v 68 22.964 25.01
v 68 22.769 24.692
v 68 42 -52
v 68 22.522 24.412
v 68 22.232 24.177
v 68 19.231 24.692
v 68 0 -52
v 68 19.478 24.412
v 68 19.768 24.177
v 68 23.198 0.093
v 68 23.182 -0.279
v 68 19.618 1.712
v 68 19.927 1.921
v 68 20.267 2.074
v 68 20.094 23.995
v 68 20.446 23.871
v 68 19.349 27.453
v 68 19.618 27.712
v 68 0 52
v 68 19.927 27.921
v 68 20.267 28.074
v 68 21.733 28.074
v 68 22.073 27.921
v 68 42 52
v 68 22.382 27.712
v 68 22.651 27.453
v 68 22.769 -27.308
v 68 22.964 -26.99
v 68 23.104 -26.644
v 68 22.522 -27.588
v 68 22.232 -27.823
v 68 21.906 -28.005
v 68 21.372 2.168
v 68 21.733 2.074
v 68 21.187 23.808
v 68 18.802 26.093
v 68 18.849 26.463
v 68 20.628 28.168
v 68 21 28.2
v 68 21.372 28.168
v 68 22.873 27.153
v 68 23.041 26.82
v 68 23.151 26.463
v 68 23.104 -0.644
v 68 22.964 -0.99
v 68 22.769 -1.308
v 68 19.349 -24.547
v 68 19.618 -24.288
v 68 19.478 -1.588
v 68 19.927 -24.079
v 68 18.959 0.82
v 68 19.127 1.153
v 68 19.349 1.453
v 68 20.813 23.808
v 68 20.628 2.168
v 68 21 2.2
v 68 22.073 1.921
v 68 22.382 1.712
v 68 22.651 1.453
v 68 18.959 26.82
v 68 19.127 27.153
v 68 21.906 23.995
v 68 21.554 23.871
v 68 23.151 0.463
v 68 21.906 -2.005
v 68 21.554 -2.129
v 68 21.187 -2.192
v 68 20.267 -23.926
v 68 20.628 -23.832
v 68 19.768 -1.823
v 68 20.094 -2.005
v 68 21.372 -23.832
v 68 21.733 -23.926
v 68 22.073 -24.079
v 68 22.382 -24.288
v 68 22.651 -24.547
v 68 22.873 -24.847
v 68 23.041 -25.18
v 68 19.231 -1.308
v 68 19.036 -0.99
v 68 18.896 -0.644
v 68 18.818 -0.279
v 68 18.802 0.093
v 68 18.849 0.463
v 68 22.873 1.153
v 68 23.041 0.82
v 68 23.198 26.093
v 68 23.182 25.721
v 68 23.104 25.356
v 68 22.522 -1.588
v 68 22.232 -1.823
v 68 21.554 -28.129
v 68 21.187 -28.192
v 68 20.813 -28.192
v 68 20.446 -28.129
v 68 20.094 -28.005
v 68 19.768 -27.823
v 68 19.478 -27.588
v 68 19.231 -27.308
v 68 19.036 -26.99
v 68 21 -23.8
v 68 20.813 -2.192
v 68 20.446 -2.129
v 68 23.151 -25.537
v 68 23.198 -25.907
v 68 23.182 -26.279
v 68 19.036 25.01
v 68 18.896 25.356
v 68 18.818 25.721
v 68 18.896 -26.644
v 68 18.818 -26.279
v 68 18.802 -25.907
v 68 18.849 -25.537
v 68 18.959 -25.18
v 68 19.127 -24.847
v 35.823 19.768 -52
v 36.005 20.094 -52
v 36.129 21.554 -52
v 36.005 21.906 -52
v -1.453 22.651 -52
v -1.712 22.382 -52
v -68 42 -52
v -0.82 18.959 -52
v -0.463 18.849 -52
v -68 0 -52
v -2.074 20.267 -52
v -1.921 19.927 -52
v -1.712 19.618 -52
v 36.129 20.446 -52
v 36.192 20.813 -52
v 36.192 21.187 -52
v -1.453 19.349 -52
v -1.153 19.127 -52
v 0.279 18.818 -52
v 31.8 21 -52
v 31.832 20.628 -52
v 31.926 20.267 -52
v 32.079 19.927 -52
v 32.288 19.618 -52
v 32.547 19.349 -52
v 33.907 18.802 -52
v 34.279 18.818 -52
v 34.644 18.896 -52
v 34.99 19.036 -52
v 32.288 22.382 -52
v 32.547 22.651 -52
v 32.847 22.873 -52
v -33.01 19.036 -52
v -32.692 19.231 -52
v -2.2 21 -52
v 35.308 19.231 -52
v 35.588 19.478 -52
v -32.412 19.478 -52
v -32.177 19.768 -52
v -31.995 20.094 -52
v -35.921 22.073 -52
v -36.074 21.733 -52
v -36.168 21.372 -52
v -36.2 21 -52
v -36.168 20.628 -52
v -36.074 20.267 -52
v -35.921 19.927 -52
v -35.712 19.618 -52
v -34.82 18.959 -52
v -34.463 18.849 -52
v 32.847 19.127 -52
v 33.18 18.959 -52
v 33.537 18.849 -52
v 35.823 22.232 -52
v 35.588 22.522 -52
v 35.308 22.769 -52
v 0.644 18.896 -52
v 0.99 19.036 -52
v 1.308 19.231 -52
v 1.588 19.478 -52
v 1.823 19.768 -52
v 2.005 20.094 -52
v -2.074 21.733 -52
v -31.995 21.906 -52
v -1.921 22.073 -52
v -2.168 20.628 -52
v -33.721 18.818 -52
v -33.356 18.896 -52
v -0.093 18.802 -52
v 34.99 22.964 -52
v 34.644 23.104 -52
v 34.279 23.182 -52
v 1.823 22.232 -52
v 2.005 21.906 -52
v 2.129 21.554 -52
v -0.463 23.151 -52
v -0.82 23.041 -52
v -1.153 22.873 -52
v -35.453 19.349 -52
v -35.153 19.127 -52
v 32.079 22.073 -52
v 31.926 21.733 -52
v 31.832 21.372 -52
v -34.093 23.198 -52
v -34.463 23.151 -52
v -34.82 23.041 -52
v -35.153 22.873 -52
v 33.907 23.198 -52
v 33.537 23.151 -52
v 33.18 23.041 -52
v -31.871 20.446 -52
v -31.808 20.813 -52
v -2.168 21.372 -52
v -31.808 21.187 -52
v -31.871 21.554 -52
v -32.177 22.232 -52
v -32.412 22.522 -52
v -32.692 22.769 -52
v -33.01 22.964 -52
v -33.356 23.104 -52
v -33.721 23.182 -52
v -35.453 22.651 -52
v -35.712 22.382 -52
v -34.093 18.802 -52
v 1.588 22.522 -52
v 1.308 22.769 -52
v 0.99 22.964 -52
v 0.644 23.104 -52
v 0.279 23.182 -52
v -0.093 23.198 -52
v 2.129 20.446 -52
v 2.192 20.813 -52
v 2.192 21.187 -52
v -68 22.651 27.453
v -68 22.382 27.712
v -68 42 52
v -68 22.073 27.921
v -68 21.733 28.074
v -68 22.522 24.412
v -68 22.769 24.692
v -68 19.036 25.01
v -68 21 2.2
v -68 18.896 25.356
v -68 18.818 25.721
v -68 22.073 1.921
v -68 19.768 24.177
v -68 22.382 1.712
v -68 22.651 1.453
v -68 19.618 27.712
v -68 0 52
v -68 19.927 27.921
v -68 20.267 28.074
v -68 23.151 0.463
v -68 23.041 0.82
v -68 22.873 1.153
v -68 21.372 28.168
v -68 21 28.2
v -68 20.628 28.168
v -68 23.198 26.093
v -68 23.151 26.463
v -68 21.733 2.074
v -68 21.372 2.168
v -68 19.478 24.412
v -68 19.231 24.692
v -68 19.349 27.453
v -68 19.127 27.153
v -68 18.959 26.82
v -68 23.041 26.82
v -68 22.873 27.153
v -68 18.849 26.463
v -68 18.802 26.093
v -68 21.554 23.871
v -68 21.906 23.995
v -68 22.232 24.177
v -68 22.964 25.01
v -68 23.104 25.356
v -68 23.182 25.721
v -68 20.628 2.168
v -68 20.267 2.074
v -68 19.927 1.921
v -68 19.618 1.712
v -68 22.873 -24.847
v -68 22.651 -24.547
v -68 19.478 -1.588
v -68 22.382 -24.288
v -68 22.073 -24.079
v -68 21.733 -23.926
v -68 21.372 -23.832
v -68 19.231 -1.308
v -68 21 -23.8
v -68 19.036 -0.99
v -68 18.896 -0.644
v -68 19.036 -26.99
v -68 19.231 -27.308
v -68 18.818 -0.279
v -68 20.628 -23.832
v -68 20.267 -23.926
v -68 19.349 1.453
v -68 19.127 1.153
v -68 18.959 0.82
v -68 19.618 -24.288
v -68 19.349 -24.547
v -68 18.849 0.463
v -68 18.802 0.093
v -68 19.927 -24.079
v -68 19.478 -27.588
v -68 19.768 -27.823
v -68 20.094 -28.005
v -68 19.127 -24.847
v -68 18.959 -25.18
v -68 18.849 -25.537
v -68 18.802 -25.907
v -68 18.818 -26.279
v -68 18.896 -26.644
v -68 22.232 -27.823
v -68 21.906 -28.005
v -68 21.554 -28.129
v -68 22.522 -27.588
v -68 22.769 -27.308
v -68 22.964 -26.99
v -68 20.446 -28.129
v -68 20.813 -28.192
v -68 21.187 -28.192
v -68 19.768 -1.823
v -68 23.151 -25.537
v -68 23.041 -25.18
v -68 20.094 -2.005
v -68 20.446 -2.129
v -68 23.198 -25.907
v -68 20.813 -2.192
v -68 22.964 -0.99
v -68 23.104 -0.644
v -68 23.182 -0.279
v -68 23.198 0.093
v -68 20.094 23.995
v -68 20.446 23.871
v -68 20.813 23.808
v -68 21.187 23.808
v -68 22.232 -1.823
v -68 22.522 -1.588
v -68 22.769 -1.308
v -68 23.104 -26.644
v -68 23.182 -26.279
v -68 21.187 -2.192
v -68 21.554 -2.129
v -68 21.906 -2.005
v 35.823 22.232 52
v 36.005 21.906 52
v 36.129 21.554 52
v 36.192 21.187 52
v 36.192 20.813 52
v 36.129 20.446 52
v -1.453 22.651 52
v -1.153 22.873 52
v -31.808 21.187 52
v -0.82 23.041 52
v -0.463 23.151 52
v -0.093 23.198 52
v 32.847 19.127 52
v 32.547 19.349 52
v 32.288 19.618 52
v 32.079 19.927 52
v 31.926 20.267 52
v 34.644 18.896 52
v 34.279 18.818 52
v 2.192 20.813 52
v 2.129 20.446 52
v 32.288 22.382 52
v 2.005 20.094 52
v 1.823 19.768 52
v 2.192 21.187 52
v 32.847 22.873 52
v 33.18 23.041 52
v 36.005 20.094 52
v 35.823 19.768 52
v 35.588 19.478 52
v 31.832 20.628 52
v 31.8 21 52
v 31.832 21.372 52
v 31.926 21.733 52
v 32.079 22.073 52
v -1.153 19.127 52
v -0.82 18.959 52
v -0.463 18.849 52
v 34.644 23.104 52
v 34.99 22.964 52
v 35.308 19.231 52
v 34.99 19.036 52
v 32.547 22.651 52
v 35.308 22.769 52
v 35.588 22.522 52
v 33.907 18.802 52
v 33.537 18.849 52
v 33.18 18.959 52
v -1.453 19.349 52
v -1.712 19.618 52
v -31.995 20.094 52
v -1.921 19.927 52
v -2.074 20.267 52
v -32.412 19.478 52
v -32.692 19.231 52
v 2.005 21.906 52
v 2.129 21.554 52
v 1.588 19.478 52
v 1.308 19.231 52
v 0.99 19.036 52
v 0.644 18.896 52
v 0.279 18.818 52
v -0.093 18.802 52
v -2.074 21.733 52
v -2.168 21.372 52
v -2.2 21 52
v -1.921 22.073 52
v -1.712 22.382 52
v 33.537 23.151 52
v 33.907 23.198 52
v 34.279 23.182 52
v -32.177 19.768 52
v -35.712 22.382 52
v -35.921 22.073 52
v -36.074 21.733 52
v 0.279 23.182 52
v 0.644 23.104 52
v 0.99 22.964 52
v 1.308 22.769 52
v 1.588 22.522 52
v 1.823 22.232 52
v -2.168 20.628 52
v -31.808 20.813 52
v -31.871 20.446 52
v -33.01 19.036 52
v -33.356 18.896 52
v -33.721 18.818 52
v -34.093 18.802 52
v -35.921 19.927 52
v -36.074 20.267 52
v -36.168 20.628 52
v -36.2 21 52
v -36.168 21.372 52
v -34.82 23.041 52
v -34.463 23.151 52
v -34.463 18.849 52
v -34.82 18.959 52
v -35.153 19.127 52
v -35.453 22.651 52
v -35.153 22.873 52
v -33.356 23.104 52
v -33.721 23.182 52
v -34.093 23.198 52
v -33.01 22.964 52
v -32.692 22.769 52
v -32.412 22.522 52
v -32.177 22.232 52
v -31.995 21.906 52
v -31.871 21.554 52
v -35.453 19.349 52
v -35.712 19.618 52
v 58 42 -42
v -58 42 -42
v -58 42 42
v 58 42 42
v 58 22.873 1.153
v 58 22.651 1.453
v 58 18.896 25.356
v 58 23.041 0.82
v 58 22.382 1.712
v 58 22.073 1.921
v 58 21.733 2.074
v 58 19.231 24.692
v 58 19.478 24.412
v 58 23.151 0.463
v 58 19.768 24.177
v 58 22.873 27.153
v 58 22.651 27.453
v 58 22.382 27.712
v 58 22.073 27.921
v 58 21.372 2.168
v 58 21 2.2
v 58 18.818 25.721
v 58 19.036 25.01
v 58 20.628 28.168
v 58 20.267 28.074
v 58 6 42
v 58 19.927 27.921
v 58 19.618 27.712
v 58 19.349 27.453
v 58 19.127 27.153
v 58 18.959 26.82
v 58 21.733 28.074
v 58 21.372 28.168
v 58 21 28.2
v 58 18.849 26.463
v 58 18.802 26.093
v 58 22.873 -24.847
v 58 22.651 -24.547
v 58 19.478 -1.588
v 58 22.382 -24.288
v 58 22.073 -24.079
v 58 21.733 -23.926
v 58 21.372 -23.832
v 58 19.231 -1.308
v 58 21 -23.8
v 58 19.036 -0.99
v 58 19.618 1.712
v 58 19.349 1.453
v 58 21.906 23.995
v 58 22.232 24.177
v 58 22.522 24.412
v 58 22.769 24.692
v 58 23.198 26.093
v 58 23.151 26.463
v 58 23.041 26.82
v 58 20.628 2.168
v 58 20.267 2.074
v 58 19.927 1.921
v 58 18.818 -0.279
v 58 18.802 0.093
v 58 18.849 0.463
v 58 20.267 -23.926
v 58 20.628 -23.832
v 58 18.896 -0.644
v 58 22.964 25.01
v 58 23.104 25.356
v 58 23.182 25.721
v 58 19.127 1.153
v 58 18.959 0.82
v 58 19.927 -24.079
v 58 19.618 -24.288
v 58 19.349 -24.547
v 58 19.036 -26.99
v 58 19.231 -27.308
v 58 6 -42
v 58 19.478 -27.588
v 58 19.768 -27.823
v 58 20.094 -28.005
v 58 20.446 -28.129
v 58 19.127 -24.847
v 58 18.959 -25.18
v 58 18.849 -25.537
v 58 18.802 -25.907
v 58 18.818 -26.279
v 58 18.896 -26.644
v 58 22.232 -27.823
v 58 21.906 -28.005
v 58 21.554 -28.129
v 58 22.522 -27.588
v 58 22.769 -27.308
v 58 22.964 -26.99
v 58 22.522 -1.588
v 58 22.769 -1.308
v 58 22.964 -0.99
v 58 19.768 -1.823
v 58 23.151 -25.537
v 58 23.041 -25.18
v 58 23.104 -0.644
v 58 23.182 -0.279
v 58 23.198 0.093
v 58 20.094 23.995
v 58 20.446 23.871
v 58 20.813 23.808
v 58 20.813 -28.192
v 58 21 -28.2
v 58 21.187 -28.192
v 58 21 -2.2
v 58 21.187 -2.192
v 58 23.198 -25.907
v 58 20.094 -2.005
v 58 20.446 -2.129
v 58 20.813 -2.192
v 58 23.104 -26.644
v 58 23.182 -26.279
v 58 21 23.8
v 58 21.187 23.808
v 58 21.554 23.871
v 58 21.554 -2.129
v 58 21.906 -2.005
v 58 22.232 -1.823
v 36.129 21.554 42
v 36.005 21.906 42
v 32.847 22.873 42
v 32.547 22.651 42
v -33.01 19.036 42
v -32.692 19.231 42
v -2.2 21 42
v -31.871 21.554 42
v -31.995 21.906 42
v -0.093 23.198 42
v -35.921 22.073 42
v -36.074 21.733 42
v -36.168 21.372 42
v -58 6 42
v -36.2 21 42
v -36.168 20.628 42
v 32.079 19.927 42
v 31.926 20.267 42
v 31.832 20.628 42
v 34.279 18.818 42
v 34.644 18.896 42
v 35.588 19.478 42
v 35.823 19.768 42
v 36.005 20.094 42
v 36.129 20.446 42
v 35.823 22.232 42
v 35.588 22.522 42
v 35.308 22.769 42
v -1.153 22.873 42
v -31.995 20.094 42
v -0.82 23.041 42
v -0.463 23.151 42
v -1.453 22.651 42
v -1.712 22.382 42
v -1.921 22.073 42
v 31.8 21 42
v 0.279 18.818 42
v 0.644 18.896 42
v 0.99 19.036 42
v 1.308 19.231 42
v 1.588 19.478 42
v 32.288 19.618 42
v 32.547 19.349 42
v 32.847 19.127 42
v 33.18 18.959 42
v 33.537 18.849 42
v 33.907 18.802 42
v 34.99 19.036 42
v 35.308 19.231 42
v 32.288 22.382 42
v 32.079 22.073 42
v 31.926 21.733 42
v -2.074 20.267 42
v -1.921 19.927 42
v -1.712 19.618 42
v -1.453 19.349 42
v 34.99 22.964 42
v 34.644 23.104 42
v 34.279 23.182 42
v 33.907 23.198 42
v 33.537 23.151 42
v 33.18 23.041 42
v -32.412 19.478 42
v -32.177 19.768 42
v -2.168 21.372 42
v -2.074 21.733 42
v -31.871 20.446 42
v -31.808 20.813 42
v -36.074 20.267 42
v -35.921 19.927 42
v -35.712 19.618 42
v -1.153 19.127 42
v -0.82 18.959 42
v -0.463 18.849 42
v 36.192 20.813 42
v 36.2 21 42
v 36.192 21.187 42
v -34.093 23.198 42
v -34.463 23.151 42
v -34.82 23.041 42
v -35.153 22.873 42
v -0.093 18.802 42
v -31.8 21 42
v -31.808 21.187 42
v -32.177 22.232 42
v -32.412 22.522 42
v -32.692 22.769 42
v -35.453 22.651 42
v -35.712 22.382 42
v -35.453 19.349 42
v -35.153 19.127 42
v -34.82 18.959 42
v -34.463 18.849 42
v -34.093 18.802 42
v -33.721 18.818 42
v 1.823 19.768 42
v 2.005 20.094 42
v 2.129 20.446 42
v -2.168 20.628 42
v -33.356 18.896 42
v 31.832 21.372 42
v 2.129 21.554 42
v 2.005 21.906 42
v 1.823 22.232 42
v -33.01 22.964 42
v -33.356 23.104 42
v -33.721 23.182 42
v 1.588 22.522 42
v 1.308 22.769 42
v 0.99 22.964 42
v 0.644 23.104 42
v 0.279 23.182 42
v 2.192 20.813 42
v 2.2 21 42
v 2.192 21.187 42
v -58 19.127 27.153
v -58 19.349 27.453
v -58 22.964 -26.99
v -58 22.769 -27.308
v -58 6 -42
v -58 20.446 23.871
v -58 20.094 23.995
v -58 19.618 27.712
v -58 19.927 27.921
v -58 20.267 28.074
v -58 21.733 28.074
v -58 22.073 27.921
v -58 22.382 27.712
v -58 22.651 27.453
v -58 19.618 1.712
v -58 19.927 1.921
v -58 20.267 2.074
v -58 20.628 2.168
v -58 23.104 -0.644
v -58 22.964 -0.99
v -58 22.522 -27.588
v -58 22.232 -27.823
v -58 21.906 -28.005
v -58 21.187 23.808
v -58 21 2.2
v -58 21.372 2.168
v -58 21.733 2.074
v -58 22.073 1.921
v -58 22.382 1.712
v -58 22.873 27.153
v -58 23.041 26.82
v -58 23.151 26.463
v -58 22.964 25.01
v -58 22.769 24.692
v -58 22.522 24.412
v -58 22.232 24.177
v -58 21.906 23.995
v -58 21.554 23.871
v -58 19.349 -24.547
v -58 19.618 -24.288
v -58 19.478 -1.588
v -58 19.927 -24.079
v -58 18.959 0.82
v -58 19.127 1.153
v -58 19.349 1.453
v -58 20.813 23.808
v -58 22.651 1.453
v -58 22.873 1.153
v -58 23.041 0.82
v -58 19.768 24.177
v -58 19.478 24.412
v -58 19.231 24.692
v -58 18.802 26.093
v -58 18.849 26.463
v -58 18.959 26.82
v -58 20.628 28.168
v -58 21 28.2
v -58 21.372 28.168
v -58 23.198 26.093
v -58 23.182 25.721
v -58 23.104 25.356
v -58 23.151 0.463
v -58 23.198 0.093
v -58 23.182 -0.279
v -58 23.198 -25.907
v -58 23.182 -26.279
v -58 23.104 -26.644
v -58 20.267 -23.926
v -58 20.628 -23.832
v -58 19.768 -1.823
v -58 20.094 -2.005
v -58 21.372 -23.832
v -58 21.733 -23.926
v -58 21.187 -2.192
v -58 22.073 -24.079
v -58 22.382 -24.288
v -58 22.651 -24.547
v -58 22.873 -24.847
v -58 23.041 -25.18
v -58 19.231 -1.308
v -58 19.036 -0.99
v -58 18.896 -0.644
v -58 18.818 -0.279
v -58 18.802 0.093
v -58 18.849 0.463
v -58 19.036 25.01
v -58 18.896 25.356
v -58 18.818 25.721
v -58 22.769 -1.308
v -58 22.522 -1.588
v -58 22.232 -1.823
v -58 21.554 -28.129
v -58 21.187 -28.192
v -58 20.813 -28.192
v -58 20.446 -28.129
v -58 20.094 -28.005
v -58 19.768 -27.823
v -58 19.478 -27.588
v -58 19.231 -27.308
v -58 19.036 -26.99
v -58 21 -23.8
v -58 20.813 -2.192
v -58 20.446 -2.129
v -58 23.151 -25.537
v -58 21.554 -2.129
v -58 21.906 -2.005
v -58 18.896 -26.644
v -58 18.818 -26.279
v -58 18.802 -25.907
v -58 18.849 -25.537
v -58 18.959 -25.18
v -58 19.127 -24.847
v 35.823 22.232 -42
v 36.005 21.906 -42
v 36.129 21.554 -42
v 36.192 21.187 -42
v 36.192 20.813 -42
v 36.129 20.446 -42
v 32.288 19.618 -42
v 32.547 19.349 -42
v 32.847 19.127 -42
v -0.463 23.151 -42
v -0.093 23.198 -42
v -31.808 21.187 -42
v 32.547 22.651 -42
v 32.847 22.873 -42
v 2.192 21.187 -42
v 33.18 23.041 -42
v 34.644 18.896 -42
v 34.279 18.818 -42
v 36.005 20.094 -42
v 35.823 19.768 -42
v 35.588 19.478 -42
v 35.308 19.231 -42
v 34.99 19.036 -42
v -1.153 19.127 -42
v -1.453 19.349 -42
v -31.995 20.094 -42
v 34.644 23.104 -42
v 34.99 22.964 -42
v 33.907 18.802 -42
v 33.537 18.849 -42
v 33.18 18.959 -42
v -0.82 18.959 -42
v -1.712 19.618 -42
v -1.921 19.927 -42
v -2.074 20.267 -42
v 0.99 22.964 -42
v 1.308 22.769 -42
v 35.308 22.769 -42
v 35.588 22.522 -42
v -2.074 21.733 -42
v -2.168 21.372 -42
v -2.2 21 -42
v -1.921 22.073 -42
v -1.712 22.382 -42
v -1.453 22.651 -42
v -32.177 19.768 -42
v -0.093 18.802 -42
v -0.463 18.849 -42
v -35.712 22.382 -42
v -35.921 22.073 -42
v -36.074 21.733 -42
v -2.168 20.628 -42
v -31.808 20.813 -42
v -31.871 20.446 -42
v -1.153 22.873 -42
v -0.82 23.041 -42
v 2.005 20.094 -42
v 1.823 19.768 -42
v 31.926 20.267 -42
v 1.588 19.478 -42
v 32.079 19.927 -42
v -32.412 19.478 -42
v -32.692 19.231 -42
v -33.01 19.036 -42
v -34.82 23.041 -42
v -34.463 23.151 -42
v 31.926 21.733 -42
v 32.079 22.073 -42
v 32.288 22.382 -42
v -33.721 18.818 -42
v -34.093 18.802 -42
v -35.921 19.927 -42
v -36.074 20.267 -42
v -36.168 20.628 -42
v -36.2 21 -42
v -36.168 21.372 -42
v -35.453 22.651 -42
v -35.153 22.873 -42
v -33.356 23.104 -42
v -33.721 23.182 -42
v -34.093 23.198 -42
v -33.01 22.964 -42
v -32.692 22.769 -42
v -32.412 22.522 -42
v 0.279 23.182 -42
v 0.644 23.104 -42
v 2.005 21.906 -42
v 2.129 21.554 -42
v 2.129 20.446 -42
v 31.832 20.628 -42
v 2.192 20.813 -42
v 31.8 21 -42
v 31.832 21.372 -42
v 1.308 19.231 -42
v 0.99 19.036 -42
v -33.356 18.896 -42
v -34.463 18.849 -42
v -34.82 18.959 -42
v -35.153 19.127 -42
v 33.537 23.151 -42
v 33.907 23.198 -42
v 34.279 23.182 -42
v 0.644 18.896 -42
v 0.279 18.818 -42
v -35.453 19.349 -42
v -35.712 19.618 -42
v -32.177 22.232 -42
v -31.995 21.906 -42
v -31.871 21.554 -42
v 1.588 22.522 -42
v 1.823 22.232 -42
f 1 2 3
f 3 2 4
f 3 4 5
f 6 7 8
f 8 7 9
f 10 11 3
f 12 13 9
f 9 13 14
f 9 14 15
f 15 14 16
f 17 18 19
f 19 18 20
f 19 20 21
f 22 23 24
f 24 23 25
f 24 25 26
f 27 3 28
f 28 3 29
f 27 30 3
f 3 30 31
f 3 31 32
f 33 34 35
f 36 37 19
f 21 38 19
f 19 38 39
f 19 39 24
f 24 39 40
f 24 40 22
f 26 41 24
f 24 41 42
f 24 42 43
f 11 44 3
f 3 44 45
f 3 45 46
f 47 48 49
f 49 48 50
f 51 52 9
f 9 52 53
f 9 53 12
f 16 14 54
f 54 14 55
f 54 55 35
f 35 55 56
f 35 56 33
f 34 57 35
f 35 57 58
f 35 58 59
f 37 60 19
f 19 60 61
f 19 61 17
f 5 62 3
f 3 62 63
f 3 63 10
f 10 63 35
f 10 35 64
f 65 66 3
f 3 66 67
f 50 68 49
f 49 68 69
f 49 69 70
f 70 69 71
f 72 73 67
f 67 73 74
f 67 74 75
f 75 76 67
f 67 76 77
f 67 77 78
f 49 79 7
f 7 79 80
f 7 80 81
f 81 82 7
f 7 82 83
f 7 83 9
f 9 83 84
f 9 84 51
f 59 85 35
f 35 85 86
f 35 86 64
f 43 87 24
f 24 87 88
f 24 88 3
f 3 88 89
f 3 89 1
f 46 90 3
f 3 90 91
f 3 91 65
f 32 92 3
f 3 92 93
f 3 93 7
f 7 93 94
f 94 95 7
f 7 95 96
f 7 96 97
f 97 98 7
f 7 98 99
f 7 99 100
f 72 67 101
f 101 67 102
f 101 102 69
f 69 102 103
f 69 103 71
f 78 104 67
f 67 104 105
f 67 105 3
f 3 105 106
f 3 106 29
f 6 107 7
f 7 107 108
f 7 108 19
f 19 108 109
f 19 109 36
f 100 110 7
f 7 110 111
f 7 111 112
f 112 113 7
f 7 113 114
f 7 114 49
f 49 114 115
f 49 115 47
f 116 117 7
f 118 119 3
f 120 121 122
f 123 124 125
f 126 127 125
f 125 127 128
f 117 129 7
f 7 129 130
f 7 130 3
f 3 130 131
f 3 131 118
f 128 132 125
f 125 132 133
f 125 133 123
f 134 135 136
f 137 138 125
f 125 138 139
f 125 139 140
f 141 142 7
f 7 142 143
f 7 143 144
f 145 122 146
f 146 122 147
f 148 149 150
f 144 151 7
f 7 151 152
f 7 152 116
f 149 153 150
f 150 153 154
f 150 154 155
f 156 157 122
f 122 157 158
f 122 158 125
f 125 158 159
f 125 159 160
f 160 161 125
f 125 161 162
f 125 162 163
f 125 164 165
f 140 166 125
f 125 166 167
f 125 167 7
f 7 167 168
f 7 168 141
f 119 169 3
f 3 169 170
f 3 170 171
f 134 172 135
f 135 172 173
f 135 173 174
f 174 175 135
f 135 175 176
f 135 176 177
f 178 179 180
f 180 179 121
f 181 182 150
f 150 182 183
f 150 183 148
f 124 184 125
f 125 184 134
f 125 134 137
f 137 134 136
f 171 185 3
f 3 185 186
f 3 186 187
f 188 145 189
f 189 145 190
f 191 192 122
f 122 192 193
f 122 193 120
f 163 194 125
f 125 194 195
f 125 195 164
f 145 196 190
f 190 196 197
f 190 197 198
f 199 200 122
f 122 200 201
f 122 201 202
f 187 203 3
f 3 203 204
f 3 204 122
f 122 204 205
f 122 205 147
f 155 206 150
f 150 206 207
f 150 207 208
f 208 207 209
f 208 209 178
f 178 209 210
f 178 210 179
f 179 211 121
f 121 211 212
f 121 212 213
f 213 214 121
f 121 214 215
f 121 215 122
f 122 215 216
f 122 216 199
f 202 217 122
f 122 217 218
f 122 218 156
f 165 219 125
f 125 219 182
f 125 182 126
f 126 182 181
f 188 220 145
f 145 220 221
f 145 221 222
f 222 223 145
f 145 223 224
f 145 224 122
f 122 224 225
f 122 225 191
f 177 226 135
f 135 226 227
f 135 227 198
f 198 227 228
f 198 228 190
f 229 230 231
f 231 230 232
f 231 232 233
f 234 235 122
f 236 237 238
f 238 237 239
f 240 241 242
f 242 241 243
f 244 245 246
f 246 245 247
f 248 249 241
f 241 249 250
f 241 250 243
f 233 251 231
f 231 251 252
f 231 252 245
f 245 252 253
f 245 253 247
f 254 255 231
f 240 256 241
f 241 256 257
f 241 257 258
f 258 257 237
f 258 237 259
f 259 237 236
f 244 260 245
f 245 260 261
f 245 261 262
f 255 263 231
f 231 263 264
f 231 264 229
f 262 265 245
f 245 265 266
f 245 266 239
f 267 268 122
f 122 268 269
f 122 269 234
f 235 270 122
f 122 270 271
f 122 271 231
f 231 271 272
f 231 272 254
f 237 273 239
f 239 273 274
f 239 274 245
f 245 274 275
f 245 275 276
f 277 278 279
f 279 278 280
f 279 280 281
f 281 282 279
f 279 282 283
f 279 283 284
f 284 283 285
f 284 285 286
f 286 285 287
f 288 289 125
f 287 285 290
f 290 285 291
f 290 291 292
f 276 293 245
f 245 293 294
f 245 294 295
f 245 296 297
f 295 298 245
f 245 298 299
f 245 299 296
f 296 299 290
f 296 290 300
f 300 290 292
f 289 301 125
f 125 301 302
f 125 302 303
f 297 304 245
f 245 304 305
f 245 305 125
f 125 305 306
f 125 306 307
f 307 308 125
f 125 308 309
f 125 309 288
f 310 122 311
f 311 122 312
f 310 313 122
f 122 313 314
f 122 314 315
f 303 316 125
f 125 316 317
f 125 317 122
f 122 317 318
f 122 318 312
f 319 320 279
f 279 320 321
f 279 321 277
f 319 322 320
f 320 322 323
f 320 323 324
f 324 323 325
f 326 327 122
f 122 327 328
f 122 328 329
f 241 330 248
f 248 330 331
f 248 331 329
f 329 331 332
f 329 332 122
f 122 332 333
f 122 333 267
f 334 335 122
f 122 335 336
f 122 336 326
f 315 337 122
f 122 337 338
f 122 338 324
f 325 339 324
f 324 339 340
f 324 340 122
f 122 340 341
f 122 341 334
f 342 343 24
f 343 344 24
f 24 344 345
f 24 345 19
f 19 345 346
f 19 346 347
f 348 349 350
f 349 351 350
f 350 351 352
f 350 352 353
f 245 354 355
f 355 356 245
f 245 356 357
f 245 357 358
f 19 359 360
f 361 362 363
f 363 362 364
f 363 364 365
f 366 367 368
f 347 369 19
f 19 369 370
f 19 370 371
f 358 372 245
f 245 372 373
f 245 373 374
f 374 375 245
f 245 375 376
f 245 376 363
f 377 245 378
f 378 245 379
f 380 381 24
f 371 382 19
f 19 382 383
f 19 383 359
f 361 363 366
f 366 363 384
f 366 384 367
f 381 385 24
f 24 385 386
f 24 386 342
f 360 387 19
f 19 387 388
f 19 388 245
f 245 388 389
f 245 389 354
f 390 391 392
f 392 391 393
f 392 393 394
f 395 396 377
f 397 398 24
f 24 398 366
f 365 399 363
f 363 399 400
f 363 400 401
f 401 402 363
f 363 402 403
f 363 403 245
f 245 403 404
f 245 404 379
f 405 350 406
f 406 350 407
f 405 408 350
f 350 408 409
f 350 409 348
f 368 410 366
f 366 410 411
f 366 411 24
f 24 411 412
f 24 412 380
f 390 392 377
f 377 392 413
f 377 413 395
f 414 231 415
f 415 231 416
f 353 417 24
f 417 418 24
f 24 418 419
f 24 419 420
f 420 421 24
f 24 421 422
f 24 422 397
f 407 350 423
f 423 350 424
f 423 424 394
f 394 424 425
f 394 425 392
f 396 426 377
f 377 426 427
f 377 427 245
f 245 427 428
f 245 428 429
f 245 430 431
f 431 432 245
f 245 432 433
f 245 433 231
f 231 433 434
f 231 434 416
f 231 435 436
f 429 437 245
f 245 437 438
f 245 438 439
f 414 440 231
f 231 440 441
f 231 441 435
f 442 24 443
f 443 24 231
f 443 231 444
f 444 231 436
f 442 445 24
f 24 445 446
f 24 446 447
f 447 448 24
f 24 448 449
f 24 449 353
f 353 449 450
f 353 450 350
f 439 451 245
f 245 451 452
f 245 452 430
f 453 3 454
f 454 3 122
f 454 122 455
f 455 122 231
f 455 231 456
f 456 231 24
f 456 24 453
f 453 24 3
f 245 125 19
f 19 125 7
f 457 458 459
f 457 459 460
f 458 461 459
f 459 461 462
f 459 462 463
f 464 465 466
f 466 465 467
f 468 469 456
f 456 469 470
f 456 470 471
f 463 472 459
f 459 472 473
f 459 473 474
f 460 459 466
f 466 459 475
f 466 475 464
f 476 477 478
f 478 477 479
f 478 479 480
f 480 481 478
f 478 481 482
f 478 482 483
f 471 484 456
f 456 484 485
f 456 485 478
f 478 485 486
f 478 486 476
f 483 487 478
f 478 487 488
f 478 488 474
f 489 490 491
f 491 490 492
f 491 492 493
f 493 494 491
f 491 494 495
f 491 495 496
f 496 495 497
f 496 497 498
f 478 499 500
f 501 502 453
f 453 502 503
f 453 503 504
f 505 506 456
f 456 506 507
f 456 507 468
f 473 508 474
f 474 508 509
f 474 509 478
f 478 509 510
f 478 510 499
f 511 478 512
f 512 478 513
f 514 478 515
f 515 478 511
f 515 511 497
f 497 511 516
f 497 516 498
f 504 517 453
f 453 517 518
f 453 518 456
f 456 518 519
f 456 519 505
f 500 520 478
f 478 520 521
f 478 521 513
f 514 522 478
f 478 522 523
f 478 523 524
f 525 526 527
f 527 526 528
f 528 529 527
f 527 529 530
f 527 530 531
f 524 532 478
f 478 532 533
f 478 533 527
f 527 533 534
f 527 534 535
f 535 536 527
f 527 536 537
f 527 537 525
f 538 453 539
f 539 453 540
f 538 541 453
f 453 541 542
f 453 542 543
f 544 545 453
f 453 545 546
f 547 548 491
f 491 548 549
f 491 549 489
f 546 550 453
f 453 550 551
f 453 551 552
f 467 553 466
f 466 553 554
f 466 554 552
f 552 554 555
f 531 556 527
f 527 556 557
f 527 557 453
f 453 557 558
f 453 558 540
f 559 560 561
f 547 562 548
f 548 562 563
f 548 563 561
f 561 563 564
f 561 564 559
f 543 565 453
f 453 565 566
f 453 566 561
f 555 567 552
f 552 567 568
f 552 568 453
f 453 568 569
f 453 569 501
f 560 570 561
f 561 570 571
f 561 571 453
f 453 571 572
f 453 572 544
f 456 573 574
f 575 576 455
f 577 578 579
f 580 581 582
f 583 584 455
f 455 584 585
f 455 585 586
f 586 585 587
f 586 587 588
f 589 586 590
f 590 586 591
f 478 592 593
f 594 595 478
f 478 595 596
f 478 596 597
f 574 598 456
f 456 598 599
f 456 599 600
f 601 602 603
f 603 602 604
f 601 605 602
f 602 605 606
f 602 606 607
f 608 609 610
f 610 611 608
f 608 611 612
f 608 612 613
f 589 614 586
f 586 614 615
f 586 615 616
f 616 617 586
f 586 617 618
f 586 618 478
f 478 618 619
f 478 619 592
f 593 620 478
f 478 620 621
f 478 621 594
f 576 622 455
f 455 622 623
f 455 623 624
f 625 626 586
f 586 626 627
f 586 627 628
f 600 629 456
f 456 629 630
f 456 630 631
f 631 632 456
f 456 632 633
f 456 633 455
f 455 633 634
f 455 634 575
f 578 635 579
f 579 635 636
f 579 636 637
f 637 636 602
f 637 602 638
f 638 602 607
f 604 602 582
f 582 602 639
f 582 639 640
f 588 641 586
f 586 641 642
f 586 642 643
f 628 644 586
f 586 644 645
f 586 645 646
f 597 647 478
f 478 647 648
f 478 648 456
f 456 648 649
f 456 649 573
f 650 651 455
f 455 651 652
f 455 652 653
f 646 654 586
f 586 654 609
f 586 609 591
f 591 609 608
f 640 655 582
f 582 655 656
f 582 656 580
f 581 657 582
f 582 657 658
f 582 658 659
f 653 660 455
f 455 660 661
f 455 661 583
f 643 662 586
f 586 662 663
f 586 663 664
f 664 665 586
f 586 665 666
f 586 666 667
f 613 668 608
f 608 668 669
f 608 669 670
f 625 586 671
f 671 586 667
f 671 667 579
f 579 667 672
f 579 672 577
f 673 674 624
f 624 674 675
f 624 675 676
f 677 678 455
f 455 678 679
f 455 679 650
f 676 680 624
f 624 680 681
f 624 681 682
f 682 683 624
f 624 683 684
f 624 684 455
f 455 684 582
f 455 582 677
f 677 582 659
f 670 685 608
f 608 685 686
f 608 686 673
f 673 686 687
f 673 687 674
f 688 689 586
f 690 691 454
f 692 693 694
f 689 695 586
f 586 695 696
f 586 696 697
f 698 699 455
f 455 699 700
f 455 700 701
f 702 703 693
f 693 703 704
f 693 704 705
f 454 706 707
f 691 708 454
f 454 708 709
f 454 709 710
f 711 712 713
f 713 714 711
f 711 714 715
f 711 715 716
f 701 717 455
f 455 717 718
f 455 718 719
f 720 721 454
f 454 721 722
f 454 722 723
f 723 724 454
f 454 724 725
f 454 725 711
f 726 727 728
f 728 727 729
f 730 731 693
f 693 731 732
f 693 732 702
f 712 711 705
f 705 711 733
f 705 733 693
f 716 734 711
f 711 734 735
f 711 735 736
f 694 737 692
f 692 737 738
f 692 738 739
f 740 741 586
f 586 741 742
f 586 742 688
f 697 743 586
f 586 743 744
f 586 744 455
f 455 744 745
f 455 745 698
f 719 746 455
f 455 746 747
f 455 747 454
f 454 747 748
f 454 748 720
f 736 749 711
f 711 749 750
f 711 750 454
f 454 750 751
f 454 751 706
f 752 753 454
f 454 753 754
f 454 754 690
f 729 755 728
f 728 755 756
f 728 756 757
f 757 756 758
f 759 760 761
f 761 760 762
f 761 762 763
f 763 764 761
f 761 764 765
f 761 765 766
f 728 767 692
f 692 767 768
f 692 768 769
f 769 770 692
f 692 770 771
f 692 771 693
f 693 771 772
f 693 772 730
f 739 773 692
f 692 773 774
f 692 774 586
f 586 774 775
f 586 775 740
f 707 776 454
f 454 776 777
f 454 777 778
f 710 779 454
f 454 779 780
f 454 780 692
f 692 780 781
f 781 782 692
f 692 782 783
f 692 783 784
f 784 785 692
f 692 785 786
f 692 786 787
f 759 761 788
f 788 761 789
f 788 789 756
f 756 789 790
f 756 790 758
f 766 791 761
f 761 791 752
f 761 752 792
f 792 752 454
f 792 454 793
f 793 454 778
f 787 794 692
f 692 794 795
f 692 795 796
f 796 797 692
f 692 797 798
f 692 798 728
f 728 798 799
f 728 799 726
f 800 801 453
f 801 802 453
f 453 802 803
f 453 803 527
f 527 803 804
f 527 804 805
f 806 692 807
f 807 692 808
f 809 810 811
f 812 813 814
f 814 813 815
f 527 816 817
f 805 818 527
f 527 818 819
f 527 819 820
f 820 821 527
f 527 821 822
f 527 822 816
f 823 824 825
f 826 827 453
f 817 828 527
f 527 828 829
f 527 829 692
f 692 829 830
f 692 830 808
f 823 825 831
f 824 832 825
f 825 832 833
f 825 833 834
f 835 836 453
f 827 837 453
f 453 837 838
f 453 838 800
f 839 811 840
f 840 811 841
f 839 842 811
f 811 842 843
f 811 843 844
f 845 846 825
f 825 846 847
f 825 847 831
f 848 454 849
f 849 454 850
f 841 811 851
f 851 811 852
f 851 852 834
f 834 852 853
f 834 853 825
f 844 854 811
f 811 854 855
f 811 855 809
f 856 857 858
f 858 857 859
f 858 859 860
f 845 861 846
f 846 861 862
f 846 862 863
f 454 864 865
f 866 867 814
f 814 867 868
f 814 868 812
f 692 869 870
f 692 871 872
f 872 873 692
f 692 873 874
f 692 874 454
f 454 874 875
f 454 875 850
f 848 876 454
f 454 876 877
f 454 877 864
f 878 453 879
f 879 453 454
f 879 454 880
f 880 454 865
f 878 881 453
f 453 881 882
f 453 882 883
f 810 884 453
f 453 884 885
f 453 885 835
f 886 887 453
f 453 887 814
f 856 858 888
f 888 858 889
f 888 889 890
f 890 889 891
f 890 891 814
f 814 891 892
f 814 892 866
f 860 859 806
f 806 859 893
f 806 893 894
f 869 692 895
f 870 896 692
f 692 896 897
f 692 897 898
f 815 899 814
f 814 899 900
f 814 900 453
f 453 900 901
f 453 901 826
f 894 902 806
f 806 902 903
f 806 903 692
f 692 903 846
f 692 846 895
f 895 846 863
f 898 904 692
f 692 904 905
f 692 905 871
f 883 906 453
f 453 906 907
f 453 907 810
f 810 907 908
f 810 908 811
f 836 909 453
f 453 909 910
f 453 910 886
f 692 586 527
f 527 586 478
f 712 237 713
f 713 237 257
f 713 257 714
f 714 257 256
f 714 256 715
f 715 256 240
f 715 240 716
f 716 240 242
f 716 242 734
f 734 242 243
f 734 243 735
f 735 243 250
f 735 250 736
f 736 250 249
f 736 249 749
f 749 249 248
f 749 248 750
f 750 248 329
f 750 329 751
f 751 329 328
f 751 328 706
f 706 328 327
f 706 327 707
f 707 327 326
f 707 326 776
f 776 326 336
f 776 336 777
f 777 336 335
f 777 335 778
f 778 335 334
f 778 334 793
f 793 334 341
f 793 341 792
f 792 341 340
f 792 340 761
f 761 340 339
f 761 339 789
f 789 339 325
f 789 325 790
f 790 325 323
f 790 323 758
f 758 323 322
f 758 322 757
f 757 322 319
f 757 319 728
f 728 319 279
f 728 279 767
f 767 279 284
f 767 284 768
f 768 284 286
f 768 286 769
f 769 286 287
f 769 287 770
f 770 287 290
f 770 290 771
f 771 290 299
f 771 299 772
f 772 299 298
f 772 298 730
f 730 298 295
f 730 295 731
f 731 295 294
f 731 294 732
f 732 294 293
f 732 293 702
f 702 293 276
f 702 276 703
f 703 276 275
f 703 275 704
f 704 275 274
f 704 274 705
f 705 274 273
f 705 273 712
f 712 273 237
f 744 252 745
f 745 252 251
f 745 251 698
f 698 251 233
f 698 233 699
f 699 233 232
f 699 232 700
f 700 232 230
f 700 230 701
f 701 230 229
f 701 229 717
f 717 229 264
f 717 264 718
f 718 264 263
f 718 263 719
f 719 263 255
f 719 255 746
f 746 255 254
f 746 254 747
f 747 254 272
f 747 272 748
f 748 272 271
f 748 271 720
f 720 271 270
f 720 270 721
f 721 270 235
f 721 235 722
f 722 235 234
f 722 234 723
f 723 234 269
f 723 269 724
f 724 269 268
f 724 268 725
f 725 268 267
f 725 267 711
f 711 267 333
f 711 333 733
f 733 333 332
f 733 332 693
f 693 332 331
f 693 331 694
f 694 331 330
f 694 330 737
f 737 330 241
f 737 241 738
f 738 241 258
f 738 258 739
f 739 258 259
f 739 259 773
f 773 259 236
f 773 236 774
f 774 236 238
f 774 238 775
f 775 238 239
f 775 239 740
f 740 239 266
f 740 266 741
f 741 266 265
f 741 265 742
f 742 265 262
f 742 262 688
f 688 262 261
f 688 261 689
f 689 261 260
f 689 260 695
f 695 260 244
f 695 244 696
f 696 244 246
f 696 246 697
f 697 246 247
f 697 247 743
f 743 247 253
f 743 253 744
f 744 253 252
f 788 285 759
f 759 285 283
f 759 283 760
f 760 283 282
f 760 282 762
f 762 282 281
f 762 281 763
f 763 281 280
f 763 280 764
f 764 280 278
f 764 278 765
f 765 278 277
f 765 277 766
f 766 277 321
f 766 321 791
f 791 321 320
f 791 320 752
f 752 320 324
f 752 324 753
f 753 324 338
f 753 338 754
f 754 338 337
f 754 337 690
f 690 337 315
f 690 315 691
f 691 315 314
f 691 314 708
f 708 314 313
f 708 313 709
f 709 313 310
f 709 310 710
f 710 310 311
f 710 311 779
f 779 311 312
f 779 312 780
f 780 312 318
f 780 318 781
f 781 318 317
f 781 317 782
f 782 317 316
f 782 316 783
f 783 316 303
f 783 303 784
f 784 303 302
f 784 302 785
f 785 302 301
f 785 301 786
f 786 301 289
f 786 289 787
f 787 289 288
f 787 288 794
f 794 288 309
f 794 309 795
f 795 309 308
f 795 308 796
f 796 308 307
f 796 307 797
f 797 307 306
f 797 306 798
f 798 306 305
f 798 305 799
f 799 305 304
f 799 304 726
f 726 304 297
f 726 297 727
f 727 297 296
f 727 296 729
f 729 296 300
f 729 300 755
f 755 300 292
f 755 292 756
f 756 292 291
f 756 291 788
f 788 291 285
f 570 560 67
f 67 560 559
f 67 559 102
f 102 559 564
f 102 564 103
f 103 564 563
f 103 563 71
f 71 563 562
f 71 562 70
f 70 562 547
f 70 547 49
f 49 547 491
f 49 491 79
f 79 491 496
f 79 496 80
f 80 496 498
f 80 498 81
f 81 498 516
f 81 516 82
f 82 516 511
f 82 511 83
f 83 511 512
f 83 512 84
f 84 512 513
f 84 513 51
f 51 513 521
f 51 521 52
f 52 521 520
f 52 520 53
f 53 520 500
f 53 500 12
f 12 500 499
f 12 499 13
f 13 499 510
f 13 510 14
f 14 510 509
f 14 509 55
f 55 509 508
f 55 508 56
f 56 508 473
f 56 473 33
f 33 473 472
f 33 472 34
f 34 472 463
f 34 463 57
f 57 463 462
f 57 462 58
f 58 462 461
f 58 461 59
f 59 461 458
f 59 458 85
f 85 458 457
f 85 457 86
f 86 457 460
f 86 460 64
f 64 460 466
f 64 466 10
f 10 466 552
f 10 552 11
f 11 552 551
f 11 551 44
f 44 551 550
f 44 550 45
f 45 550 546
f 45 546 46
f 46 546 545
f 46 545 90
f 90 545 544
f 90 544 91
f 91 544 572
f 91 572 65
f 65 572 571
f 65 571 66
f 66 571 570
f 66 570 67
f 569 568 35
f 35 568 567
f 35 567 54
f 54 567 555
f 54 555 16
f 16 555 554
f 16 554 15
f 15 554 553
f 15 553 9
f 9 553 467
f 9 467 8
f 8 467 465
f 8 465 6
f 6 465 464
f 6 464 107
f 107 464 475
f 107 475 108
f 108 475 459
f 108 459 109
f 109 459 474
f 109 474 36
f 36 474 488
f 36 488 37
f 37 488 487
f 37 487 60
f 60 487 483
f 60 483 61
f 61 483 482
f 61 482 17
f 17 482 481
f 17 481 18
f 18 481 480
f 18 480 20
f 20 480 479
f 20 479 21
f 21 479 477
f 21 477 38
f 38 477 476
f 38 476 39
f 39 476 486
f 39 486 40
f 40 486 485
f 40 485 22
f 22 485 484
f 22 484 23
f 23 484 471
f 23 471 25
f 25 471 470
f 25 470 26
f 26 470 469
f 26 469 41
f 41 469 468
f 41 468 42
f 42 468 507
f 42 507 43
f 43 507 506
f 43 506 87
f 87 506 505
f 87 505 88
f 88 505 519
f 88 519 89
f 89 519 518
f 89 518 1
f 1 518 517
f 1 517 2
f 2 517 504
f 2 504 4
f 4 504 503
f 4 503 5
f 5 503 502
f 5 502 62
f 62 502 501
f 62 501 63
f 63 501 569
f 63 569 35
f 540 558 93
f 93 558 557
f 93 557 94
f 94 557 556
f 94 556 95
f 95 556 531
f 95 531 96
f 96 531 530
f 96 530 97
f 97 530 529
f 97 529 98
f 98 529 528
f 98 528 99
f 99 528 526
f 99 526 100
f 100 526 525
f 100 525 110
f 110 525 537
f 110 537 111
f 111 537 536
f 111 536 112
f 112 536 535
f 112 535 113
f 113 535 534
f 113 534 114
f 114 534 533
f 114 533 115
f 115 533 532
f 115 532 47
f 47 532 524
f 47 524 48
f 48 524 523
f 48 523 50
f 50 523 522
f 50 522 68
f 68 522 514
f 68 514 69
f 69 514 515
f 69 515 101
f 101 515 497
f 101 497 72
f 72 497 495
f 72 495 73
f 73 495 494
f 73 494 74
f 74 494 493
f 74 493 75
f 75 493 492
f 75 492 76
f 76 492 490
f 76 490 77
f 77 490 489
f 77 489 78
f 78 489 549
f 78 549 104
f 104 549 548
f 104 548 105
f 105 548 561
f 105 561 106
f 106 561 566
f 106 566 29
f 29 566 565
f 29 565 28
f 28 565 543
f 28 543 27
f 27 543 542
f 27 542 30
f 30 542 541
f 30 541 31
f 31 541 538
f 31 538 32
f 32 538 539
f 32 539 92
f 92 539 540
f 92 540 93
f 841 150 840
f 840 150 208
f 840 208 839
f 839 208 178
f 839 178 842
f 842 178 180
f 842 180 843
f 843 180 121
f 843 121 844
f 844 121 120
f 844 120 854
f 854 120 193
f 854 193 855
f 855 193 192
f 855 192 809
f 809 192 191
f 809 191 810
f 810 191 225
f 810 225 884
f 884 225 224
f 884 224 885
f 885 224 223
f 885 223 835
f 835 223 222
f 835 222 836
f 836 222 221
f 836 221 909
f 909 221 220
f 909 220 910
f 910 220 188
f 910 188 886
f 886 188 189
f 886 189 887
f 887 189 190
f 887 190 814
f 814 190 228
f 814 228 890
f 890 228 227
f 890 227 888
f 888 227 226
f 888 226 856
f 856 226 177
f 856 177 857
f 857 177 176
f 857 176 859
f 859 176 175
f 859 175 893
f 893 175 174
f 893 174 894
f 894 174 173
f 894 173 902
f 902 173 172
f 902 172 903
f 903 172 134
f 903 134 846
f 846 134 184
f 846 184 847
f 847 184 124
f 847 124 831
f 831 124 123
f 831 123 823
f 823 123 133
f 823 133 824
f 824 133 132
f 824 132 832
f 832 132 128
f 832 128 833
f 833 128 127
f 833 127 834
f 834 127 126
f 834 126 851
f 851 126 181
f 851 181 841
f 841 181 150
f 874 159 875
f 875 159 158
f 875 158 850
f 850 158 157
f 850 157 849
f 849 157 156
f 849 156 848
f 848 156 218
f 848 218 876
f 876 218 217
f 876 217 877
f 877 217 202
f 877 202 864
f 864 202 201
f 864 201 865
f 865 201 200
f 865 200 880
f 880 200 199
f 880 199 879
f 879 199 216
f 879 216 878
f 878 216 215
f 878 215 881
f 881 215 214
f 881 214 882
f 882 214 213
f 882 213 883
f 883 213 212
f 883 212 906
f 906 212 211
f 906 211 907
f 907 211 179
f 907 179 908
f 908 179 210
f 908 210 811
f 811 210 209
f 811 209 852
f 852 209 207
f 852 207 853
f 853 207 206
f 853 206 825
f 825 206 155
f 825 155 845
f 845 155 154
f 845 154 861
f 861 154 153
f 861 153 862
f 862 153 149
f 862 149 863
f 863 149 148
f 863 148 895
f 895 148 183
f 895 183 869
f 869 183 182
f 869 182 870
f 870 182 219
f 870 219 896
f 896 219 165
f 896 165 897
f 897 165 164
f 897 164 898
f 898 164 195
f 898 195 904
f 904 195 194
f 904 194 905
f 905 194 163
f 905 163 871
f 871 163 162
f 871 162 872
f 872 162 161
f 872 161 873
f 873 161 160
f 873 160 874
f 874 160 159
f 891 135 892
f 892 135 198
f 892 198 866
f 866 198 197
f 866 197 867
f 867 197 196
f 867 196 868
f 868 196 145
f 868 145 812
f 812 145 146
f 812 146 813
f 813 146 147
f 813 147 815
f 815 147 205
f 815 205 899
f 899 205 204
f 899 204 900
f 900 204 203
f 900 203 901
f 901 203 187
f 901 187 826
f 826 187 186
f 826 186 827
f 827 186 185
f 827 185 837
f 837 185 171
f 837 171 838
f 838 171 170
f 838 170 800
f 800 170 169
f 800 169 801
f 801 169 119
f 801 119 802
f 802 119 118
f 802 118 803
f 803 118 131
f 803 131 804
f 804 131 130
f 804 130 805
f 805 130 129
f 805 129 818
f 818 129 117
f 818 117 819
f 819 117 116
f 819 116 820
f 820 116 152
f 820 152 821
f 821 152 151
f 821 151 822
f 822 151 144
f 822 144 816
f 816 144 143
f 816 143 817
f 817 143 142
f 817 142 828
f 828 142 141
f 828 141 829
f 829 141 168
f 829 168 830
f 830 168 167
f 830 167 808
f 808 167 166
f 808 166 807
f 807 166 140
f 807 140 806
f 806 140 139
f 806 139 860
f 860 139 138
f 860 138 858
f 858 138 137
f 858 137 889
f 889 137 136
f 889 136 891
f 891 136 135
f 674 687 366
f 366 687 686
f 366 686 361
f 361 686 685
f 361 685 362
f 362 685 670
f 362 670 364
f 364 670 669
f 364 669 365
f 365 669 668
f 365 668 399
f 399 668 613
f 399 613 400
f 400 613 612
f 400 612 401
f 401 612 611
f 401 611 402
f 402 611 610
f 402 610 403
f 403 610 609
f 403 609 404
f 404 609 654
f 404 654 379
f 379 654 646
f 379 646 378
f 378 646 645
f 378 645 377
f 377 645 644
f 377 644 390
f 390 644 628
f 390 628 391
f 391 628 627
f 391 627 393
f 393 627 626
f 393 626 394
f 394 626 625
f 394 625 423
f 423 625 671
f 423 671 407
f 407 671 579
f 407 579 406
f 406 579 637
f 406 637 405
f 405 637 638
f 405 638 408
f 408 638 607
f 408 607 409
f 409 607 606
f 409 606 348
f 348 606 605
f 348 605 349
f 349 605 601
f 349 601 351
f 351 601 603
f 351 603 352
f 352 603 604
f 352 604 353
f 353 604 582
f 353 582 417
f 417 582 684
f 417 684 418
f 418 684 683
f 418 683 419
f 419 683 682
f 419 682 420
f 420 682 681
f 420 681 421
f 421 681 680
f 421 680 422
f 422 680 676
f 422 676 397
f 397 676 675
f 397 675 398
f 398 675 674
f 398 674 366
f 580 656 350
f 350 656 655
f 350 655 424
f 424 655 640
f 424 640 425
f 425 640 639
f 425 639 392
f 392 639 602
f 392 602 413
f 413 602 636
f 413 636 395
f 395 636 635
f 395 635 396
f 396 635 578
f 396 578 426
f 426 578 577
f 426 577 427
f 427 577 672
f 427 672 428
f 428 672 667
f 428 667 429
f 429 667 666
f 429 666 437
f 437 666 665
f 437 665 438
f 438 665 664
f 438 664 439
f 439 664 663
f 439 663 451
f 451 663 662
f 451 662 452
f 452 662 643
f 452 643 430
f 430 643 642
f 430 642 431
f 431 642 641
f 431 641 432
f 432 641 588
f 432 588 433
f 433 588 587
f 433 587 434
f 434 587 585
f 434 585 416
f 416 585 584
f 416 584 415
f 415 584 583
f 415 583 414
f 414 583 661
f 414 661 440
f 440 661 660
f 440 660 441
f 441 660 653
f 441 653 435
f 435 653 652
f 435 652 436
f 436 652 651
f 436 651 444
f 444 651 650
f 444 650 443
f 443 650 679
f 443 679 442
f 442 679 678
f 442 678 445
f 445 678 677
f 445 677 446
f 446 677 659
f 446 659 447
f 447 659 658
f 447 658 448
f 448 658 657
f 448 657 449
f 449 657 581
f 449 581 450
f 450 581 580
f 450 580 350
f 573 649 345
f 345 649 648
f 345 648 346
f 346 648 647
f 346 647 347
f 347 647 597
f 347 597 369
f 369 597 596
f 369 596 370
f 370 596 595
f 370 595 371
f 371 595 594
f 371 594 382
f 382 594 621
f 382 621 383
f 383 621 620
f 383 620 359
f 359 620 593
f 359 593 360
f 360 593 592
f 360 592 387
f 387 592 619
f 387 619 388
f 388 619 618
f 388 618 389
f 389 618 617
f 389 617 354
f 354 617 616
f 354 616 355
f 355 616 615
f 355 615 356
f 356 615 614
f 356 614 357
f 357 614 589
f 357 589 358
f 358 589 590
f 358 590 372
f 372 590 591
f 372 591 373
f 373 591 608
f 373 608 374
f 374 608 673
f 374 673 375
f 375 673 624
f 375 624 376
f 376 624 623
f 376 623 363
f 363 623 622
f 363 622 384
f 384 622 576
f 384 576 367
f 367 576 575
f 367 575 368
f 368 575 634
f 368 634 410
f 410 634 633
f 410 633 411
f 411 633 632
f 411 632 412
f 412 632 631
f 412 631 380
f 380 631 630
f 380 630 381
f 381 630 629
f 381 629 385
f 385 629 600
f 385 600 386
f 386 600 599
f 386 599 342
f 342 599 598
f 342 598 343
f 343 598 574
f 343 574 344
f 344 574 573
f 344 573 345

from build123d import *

# Parameters (mm, degrees)
SKETCH_1_W          = 136
SKETCH_1_H          = 104
EXTRUDE_1_DEPTH     = 42
SKETCH_2_W          = 116
SKETCH_2_H          = 84
CUT_EXTRUDE_1_DEPTH = 36
SKETCH_6_R          = 2.2
CUT_EXTRUDE_5_DEPTH = 136
SKETCH_7_R          = 2.2
CUT_EXTRUDE_6_DEPTH = 104


with BuildPart() as part:
    # 草图1 → 凸台-拉伸1 (new body)
    with BuildSketch(Plane(origin=(0, 0, 0), x_dir=(1, 0, 0), z_dir=(0, 1, 0))):
        Rectangle(SKETCH_1_W, SKETCH_1_H)
    extrude(amount=EXTRUDE_1_DEPTH)

    # 草图2 → 切除-拉伸1 (cut)
    with BuildSketch(Plane(origin=(0, 42, 0), x_dir=(1, 0, 0), z_dir=(0, 1, 0))):
        Rectangle(SKETCH_2_W, SKETCH_2_H)
    extrude(amount=-CUT_EXTRUDE_1_DEPTH, mode=Mode.SUBTRACT)

    # 草图6 → 切除-拉伸5 (cut)
    with BuildSketch(Plane.ZY.offset(68)):
        with Locations((-26, 21)):
            Circle(SKETCH_6_R)
        with Locations((26, 21)):
            Circle(SKETCH_6_R)
        with Locations((0, 21)):
            Circle(SKETCH_6_R)
    extrude(amount=-CUT_EXTRUDE_5_DEPTH, mode=Mode.SUBTRACT)

    # 草图7 → 切除-拉伸6 (cut)
    with BuildSketch(Plane(origin=(0, 0, -52), x_dir=(-1, 0, 0), z_dir=(0, 0, -1))):
        with Locations((-34, 21)):
            Circle(SKETCH_7_R)
        with Locations((34, 21)):
            Circle(SKETCH_7_R)
        with Locations((0, 21)):
            Circle(SKETCH_7_R)
    extrude(amount=-CUT_EXTRUDE_6_DEPTH, mode=Mode.SUBTRACT)


solid = part.part
